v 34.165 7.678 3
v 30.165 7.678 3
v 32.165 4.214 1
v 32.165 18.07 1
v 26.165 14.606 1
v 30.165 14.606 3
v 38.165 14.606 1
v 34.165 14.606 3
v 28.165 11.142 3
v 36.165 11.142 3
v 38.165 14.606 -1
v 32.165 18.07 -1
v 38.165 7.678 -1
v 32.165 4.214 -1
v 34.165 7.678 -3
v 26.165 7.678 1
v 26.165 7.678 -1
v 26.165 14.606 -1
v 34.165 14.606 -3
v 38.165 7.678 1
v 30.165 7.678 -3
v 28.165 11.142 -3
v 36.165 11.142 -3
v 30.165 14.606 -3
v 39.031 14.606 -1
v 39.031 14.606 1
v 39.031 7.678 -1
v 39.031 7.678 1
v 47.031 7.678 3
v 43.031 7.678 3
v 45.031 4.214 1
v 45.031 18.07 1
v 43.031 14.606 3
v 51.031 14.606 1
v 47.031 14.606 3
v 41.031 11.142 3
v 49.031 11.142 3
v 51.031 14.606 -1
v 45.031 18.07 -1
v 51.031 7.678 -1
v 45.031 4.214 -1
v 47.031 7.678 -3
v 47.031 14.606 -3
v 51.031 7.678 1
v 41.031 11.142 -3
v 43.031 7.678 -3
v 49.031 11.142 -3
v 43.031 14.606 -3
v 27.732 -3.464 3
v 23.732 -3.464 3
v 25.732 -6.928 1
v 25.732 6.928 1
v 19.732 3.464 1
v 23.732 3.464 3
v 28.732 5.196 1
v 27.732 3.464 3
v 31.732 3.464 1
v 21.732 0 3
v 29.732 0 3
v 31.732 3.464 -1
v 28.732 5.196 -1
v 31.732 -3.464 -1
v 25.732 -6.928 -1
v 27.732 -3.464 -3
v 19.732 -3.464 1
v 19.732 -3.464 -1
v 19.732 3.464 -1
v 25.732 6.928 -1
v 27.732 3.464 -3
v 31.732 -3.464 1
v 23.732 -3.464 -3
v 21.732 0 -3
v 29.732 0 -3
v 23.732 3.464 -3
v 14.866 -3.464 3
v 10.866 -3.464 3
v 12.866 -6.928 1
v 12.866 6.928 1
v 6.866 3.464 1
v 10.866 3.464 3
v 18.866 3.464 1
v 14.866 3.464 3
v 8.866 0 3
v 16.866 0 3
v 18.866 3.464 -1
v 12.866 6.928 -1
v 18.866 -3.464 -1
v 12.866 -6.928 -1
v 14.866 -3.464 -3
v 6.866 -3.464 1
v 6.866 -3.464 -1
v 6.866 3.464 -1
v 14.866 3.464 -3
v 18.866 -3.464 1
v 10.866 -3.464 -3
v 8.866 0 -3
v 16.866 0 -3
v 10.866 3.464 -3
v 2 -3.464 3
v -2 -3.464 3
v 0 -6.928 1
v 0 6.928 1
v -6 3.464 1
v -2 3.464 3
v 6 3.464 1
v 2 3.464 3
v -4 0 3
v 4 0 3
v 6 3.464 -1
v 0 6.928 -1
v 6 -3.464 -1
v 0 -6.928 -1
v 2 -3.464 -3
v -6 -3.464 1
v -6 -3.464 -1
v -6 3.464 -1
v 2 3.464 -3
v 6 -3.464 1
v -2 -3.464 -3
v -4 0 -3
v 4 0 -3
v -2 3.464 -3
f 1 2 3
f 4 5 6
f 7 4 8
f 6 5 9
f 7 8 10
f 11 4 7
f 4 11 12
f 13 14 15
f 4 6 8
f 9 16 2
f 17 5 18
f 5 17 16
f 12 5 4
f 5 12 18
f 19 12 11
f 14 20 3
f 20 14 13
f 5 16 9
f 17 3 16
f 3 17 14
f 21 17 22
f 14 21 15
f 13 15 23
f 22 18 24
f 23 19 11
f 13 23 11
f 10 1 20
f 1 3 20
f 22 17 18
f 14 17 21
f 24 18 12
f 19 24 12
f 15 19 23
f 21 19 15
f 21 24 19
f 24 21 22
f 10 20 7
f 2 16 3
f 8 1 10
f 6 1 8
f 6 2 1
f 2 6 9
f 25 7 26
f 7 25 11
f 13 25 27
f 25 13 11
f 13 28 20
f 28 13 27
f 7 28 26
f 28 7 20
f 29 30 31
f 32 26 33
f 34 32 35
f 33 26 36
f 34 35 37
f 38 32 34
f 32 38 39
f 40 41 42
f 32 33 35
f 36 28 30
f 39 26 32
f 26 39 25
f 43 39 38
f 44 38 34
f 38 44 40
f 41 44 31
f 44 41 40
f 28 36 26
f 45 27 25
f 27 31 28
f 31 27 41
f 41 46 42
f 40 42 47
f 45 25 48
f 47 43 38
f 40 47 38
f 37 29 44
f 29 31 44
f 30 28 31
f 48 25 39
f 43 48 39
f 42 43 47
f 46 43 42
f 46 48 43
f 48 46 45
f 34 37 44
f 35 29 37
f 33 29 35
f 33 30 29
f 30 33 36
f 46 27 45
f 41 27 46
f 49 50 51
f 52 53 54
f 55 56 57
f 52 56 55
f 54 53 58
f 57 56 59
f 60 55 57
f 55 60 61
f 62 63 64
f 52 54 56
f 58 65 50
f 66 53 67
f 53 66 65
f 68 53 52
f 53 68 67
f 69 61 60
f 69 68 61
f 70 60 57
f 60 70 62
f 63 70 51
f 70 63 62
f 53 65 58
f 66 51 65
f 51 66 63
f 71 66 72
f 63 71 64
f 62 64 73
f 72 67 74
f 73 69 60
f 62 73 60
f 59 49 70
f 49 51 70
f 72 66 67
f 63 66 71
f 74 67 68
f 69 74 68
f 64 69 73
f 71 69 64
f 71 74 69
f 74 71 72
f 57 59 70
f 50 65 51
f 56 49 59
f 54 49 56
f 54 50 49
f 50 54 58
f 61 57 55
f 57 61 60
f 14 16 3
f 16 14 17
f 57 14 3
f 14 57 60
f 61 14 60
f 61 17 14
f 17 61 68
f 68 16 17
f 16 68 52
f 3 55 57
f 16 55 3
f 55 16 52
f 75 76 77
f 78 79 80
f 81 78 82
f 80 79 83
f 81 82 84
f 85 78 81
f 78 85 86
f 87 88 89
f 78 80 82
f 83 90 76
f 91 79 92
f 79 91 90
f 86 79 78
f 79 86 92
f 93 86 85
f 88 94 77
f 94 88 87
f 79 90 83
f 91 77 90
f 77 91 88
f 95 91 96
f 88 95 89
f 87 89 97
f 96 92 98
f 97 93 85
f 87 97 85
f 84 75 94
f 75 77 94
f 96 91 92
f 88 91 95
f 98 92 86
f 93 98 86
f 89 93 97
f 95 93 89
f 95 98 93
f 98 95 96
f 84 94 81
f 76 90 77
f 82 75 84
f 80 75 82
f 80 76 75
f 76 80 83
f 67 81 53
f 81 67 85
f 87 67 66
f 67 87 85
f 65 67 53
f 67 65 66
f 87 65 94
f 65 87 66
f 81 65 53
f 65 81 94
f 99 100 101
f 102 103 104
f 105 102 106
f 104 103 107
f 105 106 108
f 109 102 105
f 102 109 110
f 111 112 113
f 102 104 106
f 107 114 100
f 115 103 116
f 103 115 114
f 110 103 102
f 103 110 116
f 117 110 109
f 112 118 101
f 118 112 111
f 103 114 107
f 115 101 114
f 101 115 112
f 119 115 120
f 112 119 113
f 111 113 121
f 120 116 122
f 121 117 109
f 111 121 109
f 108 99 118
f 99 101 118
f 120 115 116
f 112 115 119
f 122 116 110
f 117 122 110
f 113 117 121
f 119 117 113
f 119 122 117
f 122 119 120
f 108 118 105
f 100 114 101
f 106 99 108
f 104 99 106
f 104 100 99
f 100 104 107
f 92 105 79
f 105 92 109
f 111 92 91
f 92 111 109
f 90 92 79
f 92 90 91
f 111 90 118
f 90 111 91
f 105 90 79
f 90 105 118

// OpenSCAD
// file: gem-common.scad
angles = [for(i = [0:5]) i * (360 / 6)];

inner_poly_radius=8 * cos(60);
outer_poly_radius=8 * cos(30);
outer_poly_z=1;
inner_poly_z=3;


gap_between_gems = cos(30);
distance_to_corner = cos(30) * outer_poly_radius * 2 + gap_between_gems;


module edge_connector(angle = 0) {
    function make_point_2d(r, angle, height) = [r * sin(angle), height];
    
    points = [
        make_point_2d(outer_poly_radius, 30, outer_poly_z),
        make_point_2d(outer_poly_radius, -30, outer_poly_z),
        make_point_2d(outer_poly_radius, -30, -outer_poly_z),
        make_point_2d(outer_poly_radius, 30, -outer_poly_z),
    ];
    
    rotate([0,0,angle]) {
        translate([(distance_to_corner - gap_between_gems) / 2,0,0]){
            rotate([90, 0, 90]) {
                linear_extrude(gap_between_gems) {
                    polygon(points);
                }
            }
        }
    }
}

module move(distance, angle) {
    translate([distance * cos(angle), distance * sin(angle), 0]) {
        children();
    }
}


module corner_connector(angle=0) {
    r = 0.5;
    rotate_angle = angle + 30;
    move(outer_poly_radius + r, rotate_angle) {
        translate([0,0, -outer_poly_z]) {
            rotate([0,0,-rotate_angle]) {
                cylinder($fn=3, r=r, h=outer_poly_z * 2);
            }
        }
    }
}

module gem() {
    function make_point(r, angle, height) = [r * cos(angle), r * sin(angle), height];
    
    top_poly = [for(th = angles) make_point(inner_poly_radius, th, inner_poly_z)];
    top_outer_poly = [for(th = angles) make_point(outer_poly_radius, th + 30, outer_poly_z)];
    bottom_outer_poly = [for(th = angles) make_point(outer_poly_radius, th + 30, -outer_poly_z)];
    bottom_poly = [for(th = angles) make_point(inner_poly_radius, th, -inner_poly_z)];
 
    function rot(n, base) = (n + 1 - base) % 6 + base;
    
    faces = [
        [5, 4, 3, 2, 1, 0],
        for(i = [0:5]) [i, (i + 1) % 6, i + 6],
        for(i = [6:11]) [i, (i - 5) % 6, rot(i, 6)],
        for(i = [6:11]) [i, rot(i, 6), rot(i, 6) + 6, i + 6],
        for(i = [12:17]) [i, rot(i, 12), rot(i, 12) + 6],
        for(i = [18:23]) [i, i-6, rot(i, 18)],
        [18, 19, 20, 21, 22, 23],
    ];
    
    polyhedron(
        concat(
            top_poly,
            top_outer_poly,
            bottom_outer_poly,
            bottom_poly
        ),
        faces
    );
}
// main file
include <./gem-common.scad>

gem();
edge_connector();
move(distance_to_corner, 0) {
    gem();
    edge_connector();
    move(distance_to_corner, 0) {
        gem();
        edge_connector(60);
        move(distance_to_corner, 60) {
            gem();
            edge_connector();
            move(distance_to_corner, 0) {
                gem();
            }
        }
    }
}
